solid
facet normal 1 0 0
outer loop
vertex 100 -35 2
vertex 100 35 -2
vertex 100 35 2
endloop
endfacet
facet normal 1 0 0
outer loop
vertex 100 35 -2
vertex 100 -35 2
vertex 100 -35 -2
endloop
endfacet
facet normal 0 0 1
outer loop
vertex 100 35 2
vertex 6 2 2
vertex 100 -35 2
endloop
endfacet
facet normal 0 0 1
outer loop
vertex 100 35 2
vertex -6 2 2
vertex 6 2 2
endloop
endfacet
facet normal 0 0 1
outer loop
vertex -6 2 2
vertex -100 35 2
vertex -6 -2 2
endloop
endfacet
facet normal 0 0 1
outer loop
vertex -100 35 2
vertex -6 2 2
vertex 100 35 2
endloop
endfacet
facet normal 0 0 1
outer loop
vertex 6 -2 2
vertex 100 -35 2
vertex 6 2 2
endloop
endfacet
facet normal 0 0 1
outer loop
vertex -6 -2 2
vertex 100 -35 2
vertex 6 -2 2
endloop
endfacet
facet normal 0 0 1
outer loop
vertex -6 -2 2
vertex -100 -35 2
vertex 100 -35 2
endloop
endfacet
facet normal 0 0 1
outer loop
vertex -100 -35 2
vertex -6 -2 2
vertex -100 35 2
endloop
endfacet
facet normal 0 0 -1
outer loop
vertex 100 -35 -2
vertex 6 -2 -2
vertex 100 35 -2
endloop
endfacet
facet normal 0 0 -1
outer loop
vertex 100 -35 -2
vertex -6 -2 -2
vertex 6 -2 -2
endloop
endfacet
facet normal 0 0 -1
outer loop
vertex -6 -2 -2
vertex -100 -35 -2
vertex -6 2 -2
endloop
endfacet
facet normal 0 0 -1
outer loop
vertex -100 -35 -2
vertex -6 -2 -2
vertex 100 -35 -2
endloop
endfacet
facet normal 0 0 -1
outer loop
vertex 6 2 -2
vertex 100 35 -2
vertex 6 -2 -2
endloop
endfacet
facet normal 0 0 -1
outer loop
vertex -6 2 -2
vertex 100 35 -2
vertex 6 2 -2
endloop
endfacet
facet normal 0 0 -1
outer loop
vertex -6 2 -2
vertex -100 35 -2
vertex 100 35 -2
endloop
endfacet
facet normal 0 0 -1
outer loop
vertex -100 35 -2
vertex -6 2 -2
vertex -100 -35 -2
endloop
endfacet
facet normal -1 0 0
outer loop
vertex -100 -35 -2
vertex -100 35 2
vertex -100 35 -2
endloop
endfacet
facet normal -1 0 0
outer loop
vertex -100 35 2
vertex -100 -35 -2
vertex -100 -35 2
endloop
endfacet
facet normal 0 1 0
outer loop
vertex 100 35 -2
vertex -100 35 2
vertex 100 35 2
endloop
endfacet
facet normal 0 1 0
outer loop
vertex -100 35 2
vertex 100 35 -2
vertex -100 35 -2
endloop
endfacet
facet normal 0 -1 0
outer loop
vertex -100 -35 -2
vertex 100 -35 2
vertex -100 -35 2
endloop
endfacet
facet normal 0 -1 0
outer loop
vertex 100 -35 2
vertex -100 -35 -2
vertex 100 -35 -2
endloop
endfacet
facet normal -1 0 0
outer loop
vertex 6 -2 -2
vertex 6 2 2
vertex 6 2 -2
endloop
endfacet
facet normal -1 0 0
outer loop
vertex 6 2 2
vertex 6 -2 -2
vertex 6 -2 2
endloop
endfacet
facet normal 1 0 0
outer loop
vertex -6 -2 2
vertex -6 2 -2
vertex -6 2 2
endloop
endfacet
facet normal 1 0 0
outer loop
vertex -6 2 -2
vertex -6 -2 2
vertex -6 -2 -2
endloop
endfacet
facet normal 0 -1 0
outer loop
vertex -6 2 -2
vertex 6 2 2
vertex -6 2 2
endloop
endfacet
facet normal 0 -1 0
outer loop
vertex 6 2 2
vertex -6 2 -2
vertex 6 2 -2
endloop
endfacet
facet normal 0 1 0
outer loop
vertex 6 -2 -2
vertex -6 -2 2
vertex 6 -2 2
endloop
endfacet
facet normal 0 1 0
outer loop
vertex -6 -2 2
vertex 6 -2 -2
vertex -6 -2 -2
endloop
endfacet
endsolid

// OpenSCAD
// ========================================
// a 200 x 70 x 4 mm plate with one 12 x 4 mm slots
// NeuroCAD canonical IR; dimensions are millimetres
// ========================================
$fn = 48;

difference() {
  cube(size=[200, 70, 4], center=true);
  cube(size=[12, 4, 6], center=true);
}
